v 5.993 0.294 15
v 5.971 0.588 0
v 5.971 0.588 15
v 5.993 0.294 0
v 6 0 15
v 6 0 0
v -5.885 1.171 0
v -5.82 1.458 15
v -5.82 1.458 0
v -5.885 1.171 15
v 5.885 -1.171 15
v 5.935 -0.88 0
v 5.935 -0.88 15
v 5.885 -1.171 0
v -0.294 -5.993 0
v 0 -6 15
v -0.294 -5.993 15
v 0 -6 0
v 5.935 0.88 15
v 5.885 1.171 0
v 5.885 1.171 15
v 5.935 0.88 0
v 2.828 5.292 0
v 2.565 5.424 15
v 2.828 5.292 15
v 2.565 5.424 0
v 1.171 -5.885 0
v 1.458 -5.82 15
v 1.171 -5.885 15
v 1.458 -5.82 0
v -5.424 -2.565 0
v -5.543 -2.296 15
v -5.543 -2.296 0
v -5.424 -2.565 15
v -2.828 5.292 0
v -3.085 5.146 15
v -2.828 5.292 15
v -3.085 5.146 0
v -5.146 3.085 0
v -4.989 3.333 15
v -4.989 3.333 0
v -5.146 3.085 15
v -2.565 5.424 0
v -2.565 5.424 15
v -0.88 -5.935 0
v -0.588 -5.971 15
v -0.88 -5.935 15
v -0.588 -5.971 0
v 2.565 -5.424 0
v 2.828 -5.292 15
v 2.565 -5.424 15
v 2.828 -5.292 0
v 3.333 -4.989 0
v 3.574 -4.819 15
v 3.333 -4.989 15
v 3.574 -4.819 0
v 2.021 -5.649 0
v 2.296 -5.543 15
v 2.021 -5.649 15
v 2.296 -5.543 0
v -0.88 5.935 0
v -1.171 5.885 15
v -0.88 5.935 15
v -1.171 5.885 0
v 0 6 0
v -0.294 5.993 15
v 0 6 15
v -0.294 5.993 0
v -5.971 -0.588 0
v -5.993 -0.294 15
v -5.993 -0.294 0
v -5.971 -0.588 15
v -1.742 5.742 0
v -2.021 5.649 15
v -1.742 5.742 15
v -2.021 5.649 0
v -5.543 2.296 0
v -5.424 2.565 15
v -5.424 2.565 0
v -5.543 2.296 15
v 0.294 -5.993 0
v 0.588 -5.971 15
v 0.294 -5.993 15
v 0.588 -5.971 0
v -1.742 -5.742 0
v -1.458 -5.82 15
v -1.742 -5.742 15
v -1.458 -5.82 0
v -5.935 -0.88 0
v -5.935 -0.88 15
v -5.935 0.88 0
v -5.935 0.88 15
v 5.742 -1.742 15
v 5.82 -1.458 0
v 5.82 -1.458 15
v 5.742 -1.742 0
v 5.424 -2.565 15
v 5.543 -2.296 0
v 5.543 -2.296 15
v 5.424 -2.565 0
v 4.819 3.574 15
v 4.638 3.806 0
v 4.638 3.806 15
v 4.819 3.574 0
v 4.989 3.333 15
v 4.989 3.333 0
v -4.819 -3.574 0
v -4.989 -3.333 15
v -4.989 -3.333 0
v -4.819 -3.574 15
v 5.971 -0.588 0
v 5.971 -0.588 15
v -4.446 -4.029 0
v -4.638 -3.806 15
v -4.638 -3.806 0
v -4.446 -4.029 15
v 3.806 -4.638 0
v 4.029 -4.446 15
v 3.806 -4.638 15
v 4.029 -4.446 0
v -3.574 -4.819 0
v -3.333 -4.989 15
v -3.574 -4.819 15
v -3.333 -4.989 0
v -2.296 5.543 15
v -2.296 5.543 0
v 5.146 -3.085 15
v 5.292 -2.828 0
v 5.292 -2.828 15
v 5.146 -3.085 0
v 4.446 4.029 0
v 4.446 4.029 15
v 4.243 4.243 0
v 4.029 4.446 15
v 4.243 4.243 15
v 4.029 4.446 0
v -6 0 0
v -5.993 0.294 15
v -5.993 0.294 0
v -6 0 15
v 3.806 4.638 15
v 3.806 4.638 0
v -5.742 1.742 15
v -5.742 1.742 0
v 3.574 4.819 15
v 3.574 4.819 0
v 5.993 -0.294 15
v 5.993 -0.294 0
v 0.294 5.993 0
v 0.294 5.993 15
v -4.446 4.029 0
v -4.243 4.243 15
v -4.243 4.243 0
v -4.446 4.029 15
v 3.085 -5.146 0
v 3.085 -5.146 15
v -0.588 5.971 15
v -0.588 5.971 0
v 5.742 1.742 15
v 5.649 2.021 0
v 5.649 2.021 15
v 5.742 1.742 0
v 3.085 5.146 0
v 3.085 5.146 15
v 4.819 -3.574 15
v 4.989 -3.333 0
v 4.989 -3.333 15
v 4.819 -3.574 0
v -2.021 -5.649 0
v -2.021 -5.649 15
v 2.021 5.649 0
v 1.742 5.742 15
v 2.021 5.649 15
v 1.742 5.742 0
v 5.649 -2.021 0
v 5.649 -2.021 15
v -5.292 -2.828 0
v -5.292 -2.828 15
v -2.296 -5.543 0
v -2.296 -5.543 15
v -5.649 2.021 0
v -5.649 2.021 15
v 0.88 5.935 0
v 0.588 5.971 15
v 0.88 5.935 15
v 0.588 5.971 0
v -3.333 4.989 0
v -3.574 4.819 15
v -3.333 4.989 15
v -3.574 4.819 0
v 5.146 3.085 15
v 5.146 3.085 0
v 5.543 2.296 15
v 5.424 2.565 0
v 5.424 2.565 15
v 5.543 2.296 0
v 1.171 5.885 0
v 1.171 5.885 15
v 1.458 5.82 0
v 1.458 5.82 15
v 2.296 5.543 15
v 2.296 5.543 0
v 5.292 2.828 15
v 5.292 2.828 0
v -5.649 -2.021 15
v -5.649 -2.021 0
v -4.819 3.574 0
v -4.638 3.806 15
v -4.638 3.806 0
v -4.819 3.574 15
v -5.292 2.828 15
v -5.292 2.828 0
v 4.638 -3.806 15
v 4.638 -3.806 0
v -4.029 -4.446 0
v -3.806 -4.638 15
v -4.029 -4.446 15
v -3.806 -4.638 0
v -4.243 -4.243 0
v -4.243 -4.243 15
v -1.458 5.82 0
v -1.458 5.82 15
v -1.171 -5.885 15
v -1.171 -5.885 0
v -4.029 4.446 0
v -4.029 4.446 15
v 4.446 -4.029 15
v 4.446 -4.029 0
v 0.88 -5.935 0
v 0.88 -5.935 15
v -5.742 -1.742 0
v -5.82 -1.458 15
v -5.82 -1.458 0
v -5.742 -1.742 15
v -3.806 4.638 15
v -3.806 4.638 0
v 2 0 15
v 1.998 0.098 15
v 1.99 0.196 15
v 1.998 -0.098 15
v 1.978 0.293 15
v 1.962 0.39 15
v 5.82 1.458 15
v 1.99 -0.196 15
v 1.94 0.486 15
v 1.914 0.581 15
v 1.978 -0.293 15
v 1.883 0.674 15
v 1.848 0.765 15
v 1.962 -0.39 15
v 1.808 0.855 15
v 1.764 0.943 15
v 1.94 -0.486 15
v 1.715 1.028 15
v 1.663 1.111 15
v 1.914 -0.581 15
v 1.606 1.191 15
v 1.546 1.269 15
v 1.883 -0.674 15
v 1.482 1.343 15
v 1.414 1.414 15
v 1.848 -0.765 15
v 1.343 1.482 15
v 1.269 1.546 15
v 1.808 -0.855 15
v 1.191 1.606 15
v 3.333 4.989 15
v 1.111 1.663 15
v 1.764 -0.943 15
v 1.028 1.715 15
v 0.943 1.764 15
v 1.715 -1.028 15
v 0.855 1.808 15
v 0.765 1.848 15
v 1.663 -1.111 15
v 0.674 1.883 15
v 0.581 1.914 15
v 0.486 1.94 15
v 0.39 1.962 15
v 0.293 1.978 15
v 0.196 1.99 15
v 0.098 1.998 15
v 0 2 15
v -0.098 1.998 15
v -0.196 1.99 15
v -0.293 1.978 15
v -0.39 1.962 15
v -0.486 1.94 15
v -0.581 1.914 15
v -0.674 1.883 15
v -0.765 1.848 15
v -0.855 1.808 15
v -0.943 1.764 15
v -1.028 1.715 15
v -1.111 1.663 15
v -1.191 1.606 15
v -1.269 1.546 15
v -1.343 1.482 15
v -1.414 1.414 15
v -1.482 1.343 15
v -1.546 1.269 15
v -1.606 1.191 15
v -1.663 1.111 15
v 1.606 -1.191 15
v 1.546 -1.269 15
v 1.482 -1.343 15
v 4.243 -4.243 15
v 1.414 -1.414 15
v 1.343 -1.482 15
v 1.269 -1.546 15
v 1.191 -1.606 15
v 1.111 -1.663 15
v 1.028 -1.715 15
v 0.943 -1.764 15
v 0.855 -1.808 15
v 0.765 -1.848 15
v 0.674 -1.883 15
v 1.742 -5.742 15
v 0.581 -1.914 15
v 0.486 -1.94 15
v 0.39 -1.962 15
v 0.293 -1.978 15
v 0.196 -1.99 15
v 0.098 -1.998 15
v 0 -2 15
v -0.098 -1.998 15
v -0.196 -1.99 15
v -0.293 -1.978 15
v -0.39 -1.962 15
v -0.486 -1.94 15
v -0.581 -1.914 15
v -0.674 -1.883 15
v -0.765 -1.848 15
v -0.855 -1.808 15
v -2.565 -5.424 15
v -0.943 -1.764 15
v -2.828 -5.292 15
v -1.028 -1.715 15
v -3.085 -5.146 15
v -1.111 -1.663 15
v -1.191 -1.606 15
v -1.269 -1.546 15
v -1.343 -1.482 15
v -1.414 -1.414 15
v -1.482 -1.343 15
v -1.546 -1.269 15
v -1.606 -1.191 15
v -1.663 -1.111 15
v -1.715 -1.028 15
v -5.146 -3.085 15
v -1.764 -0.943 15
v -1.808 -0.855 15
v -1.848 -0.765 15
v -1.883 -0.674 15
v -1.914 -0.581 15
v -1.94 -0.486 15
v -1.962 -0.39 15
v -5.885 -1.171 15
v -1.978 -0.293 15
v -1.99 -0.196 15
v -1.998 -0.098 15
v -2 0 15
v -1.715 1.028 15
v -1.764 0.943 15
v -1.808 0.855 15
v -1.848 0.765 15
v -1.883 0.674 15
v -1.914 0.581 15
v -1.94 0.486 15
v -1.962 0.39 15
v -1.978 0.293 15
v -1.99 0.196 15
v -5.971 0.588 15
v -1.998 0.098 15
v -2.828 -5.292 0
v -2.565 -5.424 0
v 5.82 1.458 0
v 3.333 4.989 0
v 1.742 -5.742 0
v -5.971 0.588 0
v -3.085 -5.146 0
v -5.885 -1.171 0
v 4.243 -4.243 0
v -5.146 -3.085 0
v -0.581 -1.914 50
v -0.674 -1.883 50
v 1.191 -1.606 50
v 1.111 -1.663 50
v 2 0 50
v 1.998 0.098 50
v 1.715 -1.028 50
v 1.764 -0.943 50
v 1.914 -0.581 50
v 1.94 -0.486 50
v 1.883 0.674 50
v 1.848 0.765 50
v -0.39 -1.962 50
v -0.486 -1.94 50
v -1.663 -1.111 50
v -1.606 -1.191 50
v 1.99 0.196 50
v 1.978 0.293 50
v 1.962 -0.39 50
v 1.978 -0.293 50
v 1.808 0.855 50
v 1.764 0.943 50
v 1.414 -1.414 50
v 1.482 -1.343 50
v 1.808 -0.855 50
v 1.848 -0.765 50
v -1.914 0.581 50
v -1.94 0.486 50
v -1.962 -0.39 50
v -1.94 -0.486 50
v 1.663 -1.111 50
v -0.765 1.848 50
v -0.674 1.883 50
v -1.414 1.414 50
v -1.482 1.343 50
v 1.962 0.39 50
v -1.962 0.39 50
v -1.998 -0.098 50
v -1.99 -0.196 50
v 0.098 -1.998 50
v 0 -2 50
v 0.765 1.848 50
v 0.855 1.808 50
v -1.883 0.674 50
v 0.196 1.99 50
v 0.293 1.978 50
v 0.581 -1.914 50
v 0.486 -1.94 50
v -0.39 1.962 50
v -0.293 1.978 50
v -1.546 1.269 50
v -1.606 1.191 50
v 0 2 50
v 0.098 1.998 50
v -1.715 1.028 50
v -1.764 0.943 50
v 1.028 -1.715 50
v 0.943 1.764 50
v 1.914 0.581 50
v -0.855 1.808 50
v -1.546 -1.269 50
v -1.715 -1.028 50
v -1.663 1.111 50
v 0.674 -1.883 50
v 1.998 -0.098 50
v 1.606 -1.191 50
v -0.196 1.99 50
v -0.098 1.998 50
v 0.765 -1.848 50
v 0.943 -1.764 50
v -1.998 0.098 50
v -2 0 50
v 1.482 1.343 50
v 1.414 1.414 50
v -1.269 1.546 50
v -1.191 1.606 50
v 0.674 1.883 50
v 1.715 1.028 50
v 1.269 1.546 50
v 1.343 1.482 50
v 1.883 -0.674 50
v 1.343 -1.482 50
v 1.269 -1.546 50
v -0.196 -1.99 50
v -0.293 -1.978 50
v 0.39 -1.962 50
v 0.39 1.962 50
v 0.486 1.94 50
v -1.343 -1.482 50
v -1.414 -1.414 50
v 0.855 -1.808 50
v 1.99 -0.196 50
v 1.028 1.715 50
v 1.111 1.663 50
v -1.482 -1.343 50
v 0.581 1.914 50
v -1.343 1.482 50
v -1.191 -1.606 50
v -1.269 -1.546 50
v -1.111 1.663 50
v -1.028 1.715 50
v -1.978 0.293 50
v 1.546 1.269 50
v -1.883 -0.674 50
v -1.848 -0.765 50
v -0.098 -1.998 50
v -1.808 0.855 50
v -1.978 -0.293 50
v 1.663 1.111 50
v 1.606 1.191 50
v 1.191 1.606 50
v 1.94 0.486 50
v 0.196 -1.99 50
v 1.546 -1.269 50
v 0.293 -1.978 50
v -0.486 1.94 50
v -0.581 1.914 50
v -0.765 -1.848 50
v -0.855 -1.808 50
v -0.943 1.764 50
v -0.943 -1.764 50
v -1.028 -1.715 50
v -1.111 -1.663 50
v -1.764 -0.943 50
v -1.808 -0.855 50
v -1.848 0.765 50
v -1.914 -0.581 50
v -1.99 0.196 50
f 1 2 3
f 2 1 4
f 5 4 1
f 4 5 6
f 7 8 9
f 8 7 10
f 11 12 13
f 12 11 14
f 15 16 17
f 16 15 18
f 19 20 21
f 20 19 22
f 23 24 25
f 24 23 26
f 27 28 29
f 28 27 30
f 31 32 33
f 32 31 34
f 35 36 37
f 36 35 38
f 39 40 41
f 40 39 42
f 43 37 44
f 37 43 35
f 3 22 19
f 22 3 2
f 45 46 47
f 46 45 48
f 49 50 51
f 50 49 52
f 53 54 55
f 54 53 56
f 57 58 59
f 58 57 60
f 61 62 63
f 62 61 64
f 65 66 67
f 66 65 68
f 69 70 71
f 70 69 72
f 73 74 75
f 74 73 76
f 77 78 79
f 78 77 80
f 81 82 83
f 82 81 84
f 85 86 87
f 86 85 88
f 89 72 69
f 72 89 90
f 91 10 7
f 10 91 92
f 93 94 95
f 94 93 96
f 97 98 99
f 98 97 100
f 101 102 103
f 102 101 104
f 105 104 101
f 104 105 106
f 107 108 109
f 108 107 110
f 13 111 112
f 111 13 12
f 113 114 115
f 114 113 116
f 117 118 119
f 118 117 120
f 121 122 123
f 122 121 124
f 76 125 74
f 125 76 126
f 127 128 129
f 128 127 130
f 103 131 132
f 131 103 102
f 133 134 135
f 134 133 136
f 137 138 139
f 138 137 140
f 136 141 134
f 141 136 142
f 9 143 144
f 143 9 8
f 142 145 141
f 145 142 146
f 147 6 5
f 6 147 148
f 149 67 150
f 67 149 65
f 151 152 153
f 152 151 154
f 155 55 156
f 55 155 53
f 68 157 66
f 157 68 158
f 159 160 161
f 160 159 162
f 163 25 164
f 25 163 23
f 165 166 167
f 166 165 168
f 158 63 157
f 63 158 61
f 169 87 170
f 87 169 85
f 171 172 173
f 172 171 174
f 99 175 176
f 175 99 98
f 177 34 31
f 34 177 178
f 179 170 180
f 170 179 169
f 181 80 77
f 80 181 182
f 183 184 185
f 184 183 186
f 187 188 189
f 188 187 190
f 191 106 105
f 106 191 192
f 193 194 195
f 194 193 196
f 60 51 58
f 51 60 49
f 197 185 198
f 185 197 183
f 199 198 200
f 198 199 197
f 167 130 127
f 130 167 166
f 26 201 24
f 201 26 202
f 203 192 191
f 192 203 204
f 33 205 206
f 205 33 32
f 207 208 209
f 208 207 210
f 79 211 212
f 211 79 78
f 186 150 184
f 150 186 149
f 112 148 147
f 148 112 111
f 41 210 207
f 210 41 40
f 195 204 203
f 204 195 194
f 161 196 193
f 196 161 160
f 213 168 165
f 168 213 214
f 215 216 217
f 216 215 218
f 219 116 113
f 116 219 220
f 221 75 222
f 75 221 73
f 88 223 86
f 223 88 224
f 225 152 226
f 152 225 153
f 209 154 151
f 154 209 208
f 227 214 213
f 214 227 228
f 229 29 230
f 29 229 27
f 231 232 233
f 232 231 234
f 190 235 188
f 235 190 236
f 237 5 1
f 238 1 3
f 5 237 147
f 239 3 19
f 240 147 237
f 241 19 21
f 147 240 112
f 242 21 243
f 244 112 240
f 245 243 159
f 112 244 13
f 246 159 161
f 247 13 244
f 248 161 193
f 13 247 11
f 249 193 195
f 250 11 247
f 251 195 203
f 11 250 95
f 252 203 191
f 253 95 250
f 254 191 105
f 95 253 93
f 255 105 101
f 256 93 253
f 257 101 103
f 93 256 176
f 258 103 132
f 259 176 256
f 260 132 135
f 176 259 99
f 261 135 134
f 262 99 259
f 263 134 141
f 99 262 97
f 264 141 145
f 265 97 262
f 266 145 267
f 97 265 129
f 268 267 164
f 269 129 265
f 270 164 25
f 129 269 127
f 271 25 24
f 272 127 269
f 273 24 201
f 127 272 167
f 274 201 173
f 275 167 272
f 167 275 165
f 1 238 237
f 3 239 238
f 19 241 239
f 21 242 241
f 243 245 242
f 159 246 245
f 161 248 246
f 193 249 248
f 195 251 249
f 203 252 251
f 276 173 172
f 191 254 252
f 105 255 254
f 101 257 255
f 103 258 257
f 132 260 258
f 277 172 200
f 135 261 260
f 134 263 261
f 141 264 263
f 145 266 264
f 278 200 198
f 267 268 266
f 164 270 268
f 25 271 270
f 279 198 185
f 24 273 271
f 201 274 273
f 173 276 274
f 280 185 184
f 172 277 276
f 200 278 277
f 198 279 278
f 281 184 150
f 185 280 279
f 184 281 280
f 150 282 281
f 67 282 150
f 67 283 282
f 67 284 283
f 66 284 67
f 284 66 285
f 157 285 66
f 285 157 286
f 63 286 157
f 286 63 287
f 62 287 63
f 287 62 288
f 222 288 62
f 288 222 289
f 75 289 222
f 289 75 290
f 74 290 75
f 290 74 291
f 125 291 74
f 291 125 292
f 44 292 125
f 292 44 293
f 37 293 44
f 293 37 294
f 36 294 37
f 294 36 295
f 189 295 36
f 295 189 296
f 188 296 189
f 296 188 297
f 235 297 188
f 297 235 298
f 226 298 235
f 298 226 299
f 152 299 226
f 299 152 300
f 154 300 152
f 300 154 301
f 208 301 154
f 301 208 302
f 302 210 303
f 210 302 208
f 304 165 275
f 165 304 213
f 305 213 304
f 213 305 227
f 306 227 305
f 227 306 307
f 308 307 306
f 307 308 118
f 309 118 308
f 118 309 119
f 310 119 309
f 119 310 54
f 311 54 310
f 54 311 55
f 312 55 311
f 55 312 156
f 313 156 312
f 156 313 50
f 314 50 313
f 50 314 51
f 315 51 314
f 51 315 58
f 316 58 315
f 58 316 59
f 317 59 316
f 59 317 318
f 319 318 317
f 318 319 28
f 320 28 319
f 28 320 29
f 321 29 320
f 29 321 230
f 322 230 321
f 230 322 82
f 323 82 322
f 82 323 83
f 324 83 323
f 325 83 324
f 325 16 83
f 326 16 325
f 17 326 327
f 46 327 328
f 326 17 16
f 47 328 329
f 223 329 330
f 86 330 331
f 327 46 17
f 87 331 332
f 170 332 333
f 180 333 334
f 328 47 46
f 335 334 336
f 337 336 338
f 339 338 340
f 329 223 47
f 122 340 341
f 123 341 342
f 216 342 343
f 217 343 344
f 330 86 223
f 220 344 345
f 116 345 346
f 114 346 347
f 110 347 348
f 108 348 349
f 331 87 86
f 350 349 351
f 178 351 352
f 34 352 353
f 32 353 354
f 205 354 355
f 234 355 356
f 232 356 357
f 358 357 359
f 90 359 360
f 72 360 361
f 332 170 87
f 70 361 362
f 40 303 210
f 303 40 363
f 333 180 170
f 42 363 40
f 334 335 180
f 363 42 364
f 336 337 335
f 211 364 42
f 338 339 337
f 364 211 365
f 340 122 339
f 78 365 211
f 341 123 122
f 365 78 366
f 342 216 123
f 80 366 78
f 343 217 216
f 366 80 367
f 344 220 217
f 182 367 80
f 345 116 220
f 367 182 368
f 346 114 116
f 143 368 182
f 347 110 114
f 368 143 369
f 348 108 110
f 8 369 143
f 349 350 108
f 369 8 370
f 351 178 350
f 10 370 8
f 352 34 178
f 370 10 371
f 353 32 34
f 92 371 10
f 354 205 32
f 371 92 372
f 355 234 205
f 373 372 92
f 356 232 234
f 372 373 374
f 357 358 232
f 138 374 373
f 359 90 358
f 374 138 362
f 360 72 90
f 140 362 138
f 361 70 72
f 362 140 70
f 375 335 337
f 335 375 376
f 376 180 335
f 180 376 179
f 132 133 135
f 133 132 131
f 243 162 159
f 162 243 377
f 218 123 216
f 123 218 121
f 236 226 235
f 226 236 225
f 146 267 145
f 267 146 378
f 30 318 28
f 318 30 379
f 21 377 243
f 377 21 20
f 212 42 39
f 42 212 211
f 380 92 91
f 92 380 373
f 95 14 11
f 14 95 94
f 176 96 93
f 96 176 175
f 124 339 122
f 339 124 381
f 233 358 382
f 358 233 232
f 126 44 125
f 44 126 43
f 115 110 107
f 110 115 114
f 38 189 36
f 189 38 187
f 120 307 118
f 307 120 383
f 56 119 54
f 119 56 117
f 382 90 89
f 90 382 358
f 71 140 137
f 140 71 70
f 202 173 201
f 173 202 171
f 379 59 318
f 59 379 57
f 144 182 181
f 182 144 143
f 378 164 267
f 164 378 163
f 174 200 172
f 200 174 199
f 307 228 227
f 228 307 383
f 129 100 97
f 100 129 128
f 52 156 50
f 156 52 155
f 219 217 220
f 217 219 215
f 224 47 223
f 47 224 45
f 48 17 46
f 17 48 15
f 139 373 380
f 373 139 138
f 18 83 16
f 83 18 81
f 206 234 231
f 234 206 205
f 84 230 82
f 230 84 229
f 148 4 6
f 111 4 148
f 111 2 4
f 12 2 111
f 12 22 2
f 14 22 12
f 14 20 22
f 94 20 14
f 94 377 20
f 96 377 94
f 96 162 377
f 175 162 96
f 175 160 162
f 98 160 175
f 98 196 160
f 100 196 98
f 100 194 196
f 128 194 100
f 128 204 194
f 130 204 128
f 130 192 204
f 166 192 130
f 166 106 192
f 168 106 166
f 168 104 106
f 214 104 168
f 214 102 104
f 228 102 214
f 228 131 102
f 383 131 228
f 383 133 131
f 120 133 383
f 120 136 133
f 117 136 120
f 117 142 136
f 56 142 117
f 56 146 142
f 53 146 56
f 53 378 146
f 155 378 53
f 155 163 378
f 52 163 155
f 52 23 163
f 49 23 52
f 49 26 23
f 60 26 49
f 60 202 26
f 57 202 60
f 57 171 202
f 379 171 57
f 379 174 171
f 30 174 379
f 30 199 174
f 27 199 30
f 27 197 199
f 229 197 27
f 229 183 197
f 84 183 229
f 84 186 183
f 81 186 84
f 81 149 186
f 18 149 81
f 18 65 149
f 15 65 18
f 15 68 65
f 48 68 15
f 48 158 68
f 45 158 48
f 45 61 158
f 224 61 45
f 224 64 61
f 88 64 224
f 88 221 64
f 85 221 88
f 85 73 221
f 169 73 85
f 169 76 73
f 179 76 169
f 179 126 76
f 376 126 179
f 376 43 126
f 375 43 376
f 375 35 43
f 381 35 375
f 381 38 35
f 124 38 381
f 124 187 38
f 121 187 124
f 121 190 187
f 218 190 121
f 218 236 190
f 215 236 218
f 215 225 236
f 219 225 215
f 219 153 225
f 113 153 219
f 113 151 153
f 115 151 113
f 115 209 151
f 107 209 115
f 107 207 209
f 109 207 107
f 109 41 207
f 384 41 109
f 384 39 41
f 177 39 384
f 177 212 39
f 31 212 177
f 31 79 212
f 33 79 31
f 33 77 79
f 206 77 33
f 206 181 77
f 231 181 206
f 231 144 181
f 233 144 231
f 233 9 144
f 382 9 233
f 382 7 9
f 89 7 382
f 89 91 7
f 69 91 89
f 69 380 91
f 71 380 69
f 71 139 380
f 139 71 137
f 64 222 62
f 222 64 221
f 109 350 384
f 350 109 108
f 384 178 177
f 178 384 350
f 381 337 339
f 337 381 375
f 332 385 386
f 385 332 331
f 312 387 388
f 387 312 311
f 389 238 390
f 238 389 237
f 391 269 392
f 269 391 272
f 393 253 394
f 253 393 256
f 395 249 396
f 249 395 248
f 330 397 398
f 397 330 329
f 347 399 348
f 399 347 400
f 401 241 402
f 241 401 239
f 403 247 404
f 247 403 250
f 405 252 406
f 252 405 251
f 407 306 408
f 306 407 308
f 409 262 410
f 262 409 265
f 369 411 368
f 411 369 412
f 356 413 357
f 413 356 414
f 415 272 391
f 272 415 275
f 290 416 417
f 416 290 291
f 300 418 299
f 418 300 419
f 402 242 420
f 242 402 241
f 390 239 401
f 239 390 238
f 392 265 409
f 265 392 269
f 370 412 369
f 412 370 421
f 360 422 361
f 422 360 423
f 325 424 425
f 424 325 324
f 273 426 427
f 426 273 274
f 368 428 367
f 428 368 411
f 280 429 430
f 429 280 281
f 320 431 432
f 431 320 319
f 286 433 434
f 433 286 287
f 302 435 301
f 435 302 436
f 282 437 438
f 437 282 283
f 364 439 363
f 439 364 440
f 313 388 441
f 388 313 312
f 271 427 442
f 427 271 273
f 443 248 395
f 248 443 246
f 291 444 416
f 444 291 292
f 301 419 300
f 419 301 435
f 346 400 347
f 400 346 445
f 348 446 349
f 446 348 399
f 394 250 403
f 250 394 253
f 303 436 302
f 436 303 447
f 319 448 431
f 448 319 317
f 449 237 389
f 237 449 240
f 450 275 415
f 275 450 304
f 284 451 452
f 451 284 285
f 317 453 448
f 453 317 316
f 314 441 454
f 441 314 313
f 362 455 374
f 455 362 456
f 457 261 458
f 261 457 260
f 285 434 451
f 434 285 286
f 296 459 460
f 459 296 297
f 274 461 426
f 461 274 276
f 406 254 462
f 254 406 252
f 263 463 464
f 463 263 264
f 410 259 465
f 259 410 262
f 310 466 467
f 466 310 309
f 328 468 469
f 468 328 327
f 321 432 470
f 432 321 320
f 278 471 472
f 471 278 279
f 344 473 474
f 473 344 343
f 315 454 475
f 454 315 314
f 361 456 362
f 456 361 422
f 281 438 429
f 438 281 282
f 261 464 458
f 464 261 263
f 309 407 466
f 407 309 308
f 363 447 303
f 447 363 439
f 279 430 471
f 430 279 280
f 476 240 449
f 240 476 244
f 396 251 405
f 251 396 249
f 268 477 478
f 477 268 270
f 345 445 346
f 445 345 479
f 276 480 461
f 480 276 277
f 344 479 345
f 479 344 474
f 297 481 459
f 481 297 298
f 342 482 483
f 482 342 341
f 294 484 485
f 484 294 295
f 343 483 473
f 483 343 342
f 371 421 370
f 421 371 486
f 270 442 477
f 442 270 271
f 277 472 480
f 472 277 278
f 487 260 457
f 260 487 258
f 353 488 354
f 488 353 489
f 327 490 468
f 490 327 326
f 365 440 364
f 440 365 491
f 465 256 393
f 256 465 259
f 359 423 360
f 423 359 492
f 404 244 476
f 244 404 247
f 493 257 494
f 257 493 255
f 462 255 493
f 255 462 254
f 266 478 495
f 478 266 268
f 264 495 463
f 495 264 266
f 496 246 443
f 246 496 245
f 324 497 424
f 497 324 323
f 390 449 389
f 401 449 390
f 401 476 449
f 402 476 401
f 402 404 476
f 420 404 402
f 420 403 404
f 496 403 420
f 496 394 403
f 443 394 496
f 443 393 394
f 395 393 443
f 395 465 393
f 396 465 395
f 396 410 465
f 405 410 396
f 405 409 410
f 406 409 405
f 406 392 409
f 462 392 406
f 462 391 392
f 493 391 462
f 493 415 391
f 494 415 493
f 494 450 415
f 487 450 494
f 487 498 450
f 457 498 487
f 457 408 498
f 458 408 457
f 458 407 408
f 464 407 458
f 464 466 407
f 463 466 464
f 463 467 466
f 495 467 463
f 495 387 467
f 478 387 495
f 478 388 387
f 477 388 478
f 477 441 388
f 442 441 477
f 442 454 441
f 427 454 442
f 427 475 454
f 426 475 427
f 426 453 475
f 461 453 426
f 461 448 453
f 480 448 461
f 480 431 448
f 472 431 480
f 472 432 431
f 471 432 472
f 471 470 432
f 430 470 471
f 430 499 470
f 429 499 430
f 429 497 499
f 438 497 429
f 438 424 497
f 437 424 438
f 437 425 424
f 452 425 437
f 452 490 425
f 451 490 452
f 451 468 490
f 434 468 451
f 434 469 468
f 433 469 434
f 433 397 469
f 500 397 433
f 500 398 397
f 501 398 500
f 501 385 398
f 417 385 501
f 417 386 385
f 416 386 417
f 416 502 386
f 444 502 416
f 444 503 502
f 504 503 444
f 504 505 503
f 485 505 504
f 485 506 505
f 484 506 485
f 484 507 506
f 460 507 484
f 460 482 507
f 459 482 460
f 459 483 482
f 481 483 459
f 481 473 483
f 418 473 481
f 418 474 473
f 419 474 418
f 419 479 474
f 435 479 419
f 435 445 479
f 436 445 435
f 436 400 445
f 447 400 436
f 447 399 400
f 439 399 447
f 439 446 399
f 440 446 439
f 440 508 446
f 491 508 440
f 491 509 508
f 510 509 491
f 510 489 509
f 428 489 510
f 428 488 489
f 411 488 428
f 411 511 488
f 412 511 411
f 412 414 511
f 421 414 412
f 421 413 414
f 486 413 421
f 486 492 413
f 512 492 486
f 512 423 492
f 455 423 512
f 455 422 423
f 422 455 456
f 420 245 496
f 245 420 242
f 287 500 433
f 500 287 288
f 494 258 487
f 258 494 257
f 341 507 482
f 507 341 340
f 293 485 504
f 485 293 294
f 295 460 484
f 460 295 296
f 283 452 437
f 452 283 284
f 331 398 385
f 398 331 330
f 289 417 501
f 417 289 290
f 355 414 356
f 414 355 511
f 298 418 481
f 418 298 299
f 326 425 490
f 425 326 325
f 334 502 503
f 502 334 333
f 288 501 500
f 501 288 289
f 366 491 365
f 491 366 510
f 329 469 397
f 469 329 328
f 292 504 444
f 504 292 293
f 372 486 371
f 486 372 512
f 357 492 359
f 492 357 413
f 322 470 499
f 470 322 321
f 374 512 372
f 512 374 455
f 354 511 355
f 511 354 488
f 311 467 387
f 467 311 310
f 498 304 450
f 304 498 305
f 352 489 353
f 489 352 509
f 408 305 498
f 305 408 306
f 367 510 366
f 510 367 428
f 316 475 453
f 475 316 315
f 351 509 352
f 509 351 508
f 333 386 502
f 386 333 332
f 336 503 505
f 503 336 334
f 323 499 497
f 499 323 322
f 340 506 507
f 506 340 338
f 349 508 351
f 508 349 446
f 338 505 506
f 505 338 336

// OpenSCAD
/* RailEduKit/InteractiveSignallingLaboratory © 2025 by Martin Scheidt and contributors
 * License: CC-BY 4.0 - https://creativecommons.org/licenses/by/4.0/
 * Project description: The Interactive Signalling Laboratory is a tool for training in Rail
 * Applications to enhance the knowledge of control and signalling principles for rail transport systems.
 *
 * Module: switch_lever
 */

// Include configuration file
include <../config/global_variables.scad>

module switch_lever(){
    // switch_lever = swl
    swl_handle_height = 15;
    cylinder(d=rail_height, h=swl_handle_height);
    translate([0,0,swl_handle_height])
    cylinder(d=4, h=35);

}

switch_lever();
